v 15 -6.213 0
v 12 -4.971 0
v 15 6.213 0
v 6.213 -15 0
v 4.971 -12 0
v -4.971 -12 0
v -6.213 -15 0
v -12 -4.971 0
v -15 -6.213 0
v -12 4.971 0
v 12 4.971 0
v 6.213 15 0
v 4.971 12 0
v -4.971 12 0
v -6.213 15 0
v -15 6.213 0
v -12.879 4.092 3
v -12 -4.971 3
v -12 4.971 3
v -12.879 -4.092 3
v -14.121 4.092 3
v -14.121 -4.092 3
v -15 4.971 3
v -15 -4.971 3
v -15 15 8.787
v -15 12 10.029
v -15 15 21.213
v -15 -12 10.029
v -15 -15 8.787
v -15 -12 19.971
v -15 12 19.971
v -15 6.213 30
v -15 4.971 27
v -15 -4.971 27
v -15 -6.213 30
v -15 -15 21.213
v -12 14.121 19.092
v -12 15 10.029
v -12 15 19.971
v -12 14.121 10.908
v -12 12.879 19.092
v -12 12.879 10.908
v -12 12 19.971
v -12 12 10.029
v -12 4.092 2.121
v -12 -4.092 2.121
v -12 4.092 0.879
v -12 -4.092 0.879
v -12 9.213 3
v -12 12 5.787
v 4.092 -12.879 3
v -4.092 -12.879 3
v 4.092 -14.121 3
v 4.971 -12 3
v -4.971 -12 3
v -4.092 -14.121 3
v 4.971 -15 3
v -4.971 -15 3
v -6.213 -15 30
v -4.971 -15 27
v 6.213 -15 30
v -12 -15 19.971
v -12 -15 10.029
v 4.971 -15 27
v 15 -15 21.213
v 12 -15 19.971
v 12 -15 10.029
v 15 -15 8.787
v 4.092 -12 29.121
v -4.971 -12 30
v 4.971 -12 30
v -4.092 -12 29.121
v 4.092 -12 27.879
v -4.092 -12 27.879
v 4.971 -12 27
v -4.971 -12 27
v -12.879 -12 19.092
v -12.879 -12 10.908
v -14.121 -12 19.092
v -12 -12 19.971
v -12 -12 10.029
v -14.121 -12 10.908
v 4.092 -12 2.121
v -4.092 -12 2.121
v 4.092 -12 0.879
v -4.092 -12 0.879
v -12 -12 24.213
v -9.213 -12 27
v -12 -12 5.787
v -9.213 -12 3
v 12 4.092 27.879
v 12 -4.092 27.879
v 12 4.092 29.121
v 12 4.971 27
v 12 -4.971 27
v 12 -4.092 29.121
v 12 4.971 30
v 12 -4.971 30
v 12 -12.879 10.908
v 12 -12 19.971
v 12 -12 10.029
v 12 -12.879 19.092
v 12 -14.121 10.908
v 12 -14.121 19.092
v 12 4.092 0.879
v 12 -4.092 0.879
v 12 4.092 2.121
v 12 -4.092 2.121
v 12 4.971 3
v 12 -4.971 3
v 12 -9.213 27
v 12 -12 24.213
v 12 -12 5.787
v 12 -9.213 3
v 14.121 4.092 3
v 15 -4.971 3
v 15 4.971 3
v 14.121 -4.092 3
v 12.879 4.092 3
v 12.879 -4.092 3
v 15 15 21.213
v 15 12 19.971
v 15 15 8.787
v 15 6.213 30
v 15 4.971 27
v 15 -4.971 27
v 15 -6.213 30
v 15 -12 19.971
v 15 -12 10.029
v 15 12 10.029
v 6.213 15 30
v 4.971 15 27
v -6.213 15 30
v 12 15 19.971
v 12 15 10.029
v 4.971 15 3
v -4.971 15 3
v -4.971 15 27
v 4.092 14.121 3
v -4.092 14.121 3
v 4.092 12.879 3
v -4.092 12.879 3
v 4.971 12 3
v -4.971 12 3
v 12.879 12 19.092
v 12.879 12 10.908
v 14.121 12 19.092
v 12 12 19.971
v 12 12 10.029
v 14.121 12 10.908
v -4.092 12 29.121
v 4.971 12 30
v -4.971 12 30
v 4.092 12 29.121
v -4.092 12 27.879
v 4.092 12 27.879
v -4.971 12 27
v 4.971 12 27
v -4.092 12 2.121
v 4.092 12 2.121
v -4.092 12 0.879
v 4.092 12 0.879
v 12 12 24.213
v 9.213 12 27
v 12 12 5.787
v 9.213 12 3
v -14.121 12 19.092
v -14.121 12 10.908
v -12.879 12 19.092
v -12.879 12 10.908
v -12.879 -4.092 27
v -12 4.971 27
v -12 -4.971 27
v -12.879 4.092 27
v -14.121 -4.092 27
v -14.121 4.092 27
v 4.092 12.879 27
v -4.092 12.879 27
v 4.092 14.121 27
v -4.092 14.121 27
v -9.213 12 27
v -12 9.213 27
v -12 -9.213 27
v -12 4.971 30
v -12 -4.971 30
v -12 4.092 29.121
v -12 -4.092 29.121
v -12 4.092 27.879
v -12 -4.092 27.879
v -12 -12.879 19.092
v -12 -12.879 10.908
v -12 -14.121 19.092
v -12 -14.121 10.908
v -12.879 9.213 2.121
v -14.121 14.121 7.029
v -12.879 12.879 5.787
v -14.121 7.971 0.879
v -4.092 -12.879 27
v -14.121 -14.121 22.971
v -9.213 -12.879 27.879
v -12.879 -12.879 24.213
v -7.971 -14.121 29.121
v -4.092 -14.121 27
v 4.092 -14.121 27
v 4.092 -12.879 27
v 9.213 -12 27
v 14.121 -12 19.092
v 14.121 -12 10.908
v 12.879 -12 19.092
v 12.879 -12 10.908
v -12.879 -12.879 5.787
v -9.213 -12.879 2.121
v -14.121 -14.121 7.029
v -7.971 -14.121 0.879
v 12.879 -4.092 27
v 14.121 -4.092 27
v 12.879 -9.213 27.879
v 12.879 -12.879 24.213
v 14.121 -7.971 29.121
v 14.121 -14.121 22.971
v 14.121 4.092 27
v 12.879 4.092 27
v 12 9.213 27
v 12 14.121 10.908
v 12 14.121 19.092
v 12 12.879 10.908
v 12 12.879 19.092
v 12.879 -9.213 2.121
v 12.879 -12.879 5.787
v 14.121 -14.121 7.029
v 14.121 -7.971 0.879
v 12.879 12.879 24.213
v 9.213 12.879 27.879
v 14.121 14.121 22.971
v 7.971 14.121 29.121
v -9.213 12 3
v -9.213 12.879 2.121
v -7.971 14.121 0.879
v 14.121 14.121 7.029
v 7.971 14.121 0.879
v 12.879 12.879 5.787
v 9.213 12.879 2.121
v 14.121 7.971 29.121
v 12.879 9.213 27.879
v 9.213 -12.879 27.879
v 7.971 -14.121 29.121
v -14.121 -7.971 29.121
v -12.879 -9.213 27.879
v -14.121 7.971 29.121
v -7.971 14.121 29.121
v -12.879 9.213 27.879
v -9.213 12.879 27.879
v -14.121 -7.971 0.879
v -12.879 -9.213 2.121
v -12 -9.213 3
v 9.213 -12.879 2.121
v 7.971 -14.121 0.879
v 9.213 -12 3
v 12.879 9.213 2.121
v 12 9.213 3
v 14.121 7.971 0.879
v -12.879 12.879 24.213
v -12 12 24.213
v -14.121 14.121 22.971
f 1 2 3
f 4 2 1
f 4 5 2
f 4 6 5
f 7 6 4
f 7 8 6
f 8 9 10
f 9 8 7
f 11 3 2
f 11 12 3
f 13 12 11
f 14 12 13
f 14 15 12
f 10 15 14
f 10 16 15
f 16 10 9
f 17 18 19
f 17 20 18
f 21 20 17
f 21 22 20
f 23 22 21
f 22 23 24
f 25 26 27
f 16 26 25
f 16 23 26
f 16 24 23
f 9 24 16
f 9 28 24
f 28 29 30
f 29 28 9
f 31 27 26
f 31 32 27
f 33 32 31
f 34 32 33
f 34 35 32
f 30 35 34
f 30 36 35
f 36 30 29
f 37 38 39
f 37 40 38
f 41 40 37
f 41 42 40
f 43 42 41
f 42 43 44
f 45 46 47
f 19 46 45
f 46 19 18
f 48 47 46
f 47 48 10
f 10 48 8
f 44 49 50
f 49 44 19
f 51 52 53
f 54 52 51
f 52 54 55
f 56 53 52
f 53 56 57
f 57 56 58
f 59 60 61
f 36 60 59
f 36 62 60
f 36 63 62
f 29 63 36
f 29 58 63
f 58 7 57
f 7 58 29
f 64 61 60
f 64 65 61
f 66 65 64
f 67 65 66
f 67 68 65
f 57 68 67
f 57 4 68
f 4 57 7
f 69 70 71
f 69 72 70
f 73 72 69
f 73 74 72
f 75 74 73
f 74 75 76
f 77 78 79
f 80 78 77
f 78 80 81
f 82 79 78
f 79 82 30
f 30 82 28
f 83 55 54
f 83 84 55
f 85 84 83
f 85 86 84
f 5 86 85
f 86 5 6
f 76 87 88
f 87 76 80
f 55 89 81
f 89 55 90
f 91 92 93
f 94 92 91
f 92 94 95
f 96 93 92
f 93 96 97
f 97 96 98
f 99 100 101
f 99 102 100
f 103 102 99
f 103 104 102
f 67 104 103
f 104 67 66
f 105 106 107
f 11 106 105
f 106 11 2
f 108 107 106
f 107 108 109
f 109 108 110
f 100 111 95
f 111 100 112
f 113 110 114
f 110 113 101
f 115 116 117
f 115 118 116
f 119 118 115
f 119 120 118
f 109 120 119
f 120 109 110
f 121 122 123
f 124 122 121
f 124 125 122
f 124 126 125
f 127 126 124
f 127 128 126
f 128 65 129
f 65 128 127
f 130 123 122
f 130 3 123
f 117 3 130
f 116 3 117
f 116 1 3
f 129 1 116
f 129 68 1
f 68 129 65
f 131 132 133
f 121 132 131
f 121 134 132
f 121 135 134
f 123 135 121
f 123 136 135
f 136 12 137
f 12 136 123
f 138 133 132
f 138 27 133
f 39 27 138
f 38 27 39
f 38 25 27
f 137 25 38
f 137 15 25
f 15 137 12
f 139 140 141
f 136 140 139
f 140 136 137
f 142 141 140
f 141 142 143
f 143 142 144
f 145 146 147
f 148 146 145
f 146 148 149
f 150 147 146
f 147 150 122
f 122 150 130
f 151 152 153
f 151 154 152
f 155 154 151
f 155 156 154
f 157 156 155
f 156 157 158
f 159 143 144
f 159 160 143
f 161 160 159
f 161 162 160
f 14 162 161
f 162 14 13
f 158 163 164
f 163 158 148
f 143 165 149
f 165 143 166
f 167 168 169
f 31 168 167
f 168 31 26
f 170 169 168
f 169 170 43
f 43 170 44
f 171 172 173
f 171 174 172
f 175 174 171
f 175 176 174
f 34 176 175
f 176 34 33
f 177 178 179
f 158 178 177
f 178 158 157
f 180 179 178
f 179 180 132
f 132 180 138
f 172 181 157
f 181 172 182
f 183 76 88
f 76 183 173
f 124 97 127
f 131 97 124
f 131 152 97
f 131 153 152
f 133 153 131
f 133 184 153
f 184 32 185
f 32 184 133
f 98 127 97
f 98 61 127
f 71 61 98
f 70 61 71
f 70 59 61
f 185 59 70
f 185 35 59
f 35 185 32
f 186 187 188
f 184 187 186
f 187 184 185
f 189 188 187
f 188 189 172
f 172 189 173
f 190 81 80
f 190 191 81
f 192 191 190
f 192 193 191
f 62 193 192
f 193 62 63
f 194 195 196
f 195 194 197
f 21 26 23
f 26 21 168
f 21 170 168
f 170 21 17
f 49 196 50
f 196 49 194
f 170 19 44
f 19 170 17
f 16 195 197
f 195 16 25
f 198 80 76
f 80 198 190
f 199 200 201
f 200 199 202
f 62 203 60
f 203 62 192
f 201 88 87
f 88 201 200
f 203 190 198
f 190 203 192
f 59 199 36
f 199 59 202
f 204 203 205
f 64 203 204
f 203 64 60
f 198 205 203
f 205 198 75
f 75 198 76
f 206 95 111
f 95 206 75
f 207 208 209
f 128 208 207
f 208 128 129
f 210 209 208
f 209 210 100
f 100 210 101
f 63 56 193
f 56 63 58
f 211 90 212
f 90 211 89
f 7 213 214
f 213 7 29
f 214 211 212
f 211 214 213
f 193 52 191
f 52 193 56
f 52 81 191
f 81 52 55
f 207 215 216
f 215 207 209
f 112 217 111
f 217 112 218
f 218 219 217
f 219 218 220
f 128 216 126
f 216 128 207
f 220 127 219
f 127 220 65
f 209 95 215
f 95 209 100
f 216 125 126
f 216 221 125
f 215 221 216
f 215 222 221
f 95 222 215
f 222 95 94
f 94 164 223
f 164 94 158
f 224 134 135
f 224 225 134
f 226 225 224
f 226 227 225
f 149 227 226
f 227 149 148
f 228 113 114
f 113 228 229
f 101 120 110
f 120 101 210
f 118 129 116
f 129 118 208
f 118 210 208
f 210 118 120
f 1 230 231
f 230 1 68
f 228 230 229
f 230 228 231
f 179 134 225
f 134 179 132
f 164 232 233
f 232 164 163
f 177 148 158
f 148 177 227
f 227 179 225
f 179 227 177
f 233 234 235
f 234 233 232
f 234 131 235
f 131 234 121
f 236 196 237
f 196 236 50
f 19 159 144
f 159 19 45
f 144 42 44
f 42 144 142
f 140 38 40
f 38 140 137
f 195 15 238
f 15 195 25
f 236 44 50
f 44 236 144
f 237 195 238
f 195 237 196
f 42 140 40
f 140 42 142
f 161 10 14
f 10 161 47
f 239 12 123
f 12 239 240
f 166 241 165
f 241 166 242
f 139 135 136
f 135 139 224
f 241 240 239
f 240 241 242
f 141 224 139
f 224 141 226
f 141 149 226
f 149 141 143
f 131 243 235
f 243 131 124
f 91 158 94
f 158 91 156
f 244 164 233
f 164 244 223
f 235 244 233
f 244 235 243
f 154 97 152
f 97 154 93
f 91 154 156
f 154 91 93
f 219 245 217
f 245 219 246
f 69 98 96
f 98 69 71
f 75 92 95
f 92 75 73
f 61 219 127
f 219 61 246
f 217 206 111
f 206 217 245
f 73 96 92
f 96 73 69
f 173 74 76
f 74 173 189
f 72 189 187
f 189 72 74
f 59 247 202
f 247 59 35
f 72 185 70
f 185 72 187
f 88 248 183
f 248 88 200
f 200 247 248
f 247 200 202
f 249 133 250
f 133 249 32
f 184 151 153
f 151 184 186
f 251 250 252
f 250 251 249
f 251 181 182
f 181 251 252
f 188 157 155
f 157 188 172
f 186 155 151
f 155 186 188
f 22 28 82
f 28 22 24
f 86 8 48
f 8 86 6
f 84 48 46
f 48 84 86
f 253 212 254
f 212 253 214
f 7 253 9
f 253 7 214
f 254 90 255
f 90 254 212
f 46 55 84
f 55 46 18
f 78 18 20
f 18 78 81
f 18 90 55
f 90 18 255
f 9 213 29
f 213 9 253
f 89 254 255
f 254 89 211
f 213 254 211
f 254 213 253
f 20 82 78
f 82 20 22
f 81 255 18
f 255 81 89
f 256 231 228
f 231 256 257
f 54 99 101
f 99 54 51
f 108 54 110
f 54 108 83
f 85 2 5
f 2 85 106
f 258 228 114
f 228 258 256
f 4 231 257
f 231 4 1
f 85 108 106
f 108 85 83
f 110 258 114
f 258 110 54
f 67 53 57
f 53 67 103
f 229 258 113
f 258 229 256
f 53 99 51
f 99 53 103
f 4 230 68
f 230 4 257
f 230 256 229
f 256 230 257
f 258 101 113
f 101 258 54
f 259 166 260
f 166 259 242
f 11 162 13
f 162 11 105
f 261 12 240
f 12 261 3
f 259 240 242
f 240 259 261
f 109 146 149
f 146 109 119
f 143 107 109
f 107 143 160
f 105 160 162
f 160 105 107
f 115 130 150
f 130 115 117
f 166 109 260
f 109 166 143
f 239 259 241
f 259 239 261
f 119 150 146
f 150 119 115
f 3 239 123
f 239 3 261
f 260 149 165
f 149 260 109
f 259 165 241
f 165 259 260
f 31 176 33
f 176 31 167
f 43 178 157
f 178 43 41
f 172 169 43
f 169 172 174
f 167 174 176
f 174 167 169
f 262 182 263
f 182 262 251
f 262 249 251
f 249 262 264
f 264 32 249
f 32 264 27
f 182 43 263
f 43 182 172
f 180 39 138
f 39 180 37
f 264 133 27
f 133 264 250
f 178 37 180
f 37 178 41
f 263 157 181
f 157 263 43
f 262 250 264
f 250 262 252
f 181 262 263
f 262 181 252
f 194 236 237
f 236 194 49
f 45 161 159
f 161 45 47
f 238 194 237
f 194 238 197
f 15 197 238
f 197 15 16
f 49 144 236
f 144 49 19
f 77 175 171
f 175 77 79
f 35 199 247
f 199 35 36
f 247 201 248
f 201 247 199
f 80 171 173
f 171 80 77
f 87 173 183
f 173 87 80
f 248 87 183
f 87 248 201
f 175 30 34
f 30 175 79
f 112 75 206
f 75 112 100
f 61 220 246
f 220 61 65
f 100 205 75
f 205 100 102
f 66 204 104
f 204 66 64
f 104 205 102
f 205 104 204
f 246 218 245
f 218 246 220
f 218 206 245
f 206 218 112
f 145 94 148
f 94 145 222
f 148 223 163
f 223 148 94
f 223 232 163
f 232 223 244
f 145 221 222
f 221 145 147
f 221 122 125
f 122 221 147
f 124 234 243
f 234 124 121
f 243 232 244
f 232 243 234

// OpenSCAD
// shape height
sh = 30;
// border width
bw = 3;

include <../polyhedra.scad>;

poly_wire(truncated_cube);
